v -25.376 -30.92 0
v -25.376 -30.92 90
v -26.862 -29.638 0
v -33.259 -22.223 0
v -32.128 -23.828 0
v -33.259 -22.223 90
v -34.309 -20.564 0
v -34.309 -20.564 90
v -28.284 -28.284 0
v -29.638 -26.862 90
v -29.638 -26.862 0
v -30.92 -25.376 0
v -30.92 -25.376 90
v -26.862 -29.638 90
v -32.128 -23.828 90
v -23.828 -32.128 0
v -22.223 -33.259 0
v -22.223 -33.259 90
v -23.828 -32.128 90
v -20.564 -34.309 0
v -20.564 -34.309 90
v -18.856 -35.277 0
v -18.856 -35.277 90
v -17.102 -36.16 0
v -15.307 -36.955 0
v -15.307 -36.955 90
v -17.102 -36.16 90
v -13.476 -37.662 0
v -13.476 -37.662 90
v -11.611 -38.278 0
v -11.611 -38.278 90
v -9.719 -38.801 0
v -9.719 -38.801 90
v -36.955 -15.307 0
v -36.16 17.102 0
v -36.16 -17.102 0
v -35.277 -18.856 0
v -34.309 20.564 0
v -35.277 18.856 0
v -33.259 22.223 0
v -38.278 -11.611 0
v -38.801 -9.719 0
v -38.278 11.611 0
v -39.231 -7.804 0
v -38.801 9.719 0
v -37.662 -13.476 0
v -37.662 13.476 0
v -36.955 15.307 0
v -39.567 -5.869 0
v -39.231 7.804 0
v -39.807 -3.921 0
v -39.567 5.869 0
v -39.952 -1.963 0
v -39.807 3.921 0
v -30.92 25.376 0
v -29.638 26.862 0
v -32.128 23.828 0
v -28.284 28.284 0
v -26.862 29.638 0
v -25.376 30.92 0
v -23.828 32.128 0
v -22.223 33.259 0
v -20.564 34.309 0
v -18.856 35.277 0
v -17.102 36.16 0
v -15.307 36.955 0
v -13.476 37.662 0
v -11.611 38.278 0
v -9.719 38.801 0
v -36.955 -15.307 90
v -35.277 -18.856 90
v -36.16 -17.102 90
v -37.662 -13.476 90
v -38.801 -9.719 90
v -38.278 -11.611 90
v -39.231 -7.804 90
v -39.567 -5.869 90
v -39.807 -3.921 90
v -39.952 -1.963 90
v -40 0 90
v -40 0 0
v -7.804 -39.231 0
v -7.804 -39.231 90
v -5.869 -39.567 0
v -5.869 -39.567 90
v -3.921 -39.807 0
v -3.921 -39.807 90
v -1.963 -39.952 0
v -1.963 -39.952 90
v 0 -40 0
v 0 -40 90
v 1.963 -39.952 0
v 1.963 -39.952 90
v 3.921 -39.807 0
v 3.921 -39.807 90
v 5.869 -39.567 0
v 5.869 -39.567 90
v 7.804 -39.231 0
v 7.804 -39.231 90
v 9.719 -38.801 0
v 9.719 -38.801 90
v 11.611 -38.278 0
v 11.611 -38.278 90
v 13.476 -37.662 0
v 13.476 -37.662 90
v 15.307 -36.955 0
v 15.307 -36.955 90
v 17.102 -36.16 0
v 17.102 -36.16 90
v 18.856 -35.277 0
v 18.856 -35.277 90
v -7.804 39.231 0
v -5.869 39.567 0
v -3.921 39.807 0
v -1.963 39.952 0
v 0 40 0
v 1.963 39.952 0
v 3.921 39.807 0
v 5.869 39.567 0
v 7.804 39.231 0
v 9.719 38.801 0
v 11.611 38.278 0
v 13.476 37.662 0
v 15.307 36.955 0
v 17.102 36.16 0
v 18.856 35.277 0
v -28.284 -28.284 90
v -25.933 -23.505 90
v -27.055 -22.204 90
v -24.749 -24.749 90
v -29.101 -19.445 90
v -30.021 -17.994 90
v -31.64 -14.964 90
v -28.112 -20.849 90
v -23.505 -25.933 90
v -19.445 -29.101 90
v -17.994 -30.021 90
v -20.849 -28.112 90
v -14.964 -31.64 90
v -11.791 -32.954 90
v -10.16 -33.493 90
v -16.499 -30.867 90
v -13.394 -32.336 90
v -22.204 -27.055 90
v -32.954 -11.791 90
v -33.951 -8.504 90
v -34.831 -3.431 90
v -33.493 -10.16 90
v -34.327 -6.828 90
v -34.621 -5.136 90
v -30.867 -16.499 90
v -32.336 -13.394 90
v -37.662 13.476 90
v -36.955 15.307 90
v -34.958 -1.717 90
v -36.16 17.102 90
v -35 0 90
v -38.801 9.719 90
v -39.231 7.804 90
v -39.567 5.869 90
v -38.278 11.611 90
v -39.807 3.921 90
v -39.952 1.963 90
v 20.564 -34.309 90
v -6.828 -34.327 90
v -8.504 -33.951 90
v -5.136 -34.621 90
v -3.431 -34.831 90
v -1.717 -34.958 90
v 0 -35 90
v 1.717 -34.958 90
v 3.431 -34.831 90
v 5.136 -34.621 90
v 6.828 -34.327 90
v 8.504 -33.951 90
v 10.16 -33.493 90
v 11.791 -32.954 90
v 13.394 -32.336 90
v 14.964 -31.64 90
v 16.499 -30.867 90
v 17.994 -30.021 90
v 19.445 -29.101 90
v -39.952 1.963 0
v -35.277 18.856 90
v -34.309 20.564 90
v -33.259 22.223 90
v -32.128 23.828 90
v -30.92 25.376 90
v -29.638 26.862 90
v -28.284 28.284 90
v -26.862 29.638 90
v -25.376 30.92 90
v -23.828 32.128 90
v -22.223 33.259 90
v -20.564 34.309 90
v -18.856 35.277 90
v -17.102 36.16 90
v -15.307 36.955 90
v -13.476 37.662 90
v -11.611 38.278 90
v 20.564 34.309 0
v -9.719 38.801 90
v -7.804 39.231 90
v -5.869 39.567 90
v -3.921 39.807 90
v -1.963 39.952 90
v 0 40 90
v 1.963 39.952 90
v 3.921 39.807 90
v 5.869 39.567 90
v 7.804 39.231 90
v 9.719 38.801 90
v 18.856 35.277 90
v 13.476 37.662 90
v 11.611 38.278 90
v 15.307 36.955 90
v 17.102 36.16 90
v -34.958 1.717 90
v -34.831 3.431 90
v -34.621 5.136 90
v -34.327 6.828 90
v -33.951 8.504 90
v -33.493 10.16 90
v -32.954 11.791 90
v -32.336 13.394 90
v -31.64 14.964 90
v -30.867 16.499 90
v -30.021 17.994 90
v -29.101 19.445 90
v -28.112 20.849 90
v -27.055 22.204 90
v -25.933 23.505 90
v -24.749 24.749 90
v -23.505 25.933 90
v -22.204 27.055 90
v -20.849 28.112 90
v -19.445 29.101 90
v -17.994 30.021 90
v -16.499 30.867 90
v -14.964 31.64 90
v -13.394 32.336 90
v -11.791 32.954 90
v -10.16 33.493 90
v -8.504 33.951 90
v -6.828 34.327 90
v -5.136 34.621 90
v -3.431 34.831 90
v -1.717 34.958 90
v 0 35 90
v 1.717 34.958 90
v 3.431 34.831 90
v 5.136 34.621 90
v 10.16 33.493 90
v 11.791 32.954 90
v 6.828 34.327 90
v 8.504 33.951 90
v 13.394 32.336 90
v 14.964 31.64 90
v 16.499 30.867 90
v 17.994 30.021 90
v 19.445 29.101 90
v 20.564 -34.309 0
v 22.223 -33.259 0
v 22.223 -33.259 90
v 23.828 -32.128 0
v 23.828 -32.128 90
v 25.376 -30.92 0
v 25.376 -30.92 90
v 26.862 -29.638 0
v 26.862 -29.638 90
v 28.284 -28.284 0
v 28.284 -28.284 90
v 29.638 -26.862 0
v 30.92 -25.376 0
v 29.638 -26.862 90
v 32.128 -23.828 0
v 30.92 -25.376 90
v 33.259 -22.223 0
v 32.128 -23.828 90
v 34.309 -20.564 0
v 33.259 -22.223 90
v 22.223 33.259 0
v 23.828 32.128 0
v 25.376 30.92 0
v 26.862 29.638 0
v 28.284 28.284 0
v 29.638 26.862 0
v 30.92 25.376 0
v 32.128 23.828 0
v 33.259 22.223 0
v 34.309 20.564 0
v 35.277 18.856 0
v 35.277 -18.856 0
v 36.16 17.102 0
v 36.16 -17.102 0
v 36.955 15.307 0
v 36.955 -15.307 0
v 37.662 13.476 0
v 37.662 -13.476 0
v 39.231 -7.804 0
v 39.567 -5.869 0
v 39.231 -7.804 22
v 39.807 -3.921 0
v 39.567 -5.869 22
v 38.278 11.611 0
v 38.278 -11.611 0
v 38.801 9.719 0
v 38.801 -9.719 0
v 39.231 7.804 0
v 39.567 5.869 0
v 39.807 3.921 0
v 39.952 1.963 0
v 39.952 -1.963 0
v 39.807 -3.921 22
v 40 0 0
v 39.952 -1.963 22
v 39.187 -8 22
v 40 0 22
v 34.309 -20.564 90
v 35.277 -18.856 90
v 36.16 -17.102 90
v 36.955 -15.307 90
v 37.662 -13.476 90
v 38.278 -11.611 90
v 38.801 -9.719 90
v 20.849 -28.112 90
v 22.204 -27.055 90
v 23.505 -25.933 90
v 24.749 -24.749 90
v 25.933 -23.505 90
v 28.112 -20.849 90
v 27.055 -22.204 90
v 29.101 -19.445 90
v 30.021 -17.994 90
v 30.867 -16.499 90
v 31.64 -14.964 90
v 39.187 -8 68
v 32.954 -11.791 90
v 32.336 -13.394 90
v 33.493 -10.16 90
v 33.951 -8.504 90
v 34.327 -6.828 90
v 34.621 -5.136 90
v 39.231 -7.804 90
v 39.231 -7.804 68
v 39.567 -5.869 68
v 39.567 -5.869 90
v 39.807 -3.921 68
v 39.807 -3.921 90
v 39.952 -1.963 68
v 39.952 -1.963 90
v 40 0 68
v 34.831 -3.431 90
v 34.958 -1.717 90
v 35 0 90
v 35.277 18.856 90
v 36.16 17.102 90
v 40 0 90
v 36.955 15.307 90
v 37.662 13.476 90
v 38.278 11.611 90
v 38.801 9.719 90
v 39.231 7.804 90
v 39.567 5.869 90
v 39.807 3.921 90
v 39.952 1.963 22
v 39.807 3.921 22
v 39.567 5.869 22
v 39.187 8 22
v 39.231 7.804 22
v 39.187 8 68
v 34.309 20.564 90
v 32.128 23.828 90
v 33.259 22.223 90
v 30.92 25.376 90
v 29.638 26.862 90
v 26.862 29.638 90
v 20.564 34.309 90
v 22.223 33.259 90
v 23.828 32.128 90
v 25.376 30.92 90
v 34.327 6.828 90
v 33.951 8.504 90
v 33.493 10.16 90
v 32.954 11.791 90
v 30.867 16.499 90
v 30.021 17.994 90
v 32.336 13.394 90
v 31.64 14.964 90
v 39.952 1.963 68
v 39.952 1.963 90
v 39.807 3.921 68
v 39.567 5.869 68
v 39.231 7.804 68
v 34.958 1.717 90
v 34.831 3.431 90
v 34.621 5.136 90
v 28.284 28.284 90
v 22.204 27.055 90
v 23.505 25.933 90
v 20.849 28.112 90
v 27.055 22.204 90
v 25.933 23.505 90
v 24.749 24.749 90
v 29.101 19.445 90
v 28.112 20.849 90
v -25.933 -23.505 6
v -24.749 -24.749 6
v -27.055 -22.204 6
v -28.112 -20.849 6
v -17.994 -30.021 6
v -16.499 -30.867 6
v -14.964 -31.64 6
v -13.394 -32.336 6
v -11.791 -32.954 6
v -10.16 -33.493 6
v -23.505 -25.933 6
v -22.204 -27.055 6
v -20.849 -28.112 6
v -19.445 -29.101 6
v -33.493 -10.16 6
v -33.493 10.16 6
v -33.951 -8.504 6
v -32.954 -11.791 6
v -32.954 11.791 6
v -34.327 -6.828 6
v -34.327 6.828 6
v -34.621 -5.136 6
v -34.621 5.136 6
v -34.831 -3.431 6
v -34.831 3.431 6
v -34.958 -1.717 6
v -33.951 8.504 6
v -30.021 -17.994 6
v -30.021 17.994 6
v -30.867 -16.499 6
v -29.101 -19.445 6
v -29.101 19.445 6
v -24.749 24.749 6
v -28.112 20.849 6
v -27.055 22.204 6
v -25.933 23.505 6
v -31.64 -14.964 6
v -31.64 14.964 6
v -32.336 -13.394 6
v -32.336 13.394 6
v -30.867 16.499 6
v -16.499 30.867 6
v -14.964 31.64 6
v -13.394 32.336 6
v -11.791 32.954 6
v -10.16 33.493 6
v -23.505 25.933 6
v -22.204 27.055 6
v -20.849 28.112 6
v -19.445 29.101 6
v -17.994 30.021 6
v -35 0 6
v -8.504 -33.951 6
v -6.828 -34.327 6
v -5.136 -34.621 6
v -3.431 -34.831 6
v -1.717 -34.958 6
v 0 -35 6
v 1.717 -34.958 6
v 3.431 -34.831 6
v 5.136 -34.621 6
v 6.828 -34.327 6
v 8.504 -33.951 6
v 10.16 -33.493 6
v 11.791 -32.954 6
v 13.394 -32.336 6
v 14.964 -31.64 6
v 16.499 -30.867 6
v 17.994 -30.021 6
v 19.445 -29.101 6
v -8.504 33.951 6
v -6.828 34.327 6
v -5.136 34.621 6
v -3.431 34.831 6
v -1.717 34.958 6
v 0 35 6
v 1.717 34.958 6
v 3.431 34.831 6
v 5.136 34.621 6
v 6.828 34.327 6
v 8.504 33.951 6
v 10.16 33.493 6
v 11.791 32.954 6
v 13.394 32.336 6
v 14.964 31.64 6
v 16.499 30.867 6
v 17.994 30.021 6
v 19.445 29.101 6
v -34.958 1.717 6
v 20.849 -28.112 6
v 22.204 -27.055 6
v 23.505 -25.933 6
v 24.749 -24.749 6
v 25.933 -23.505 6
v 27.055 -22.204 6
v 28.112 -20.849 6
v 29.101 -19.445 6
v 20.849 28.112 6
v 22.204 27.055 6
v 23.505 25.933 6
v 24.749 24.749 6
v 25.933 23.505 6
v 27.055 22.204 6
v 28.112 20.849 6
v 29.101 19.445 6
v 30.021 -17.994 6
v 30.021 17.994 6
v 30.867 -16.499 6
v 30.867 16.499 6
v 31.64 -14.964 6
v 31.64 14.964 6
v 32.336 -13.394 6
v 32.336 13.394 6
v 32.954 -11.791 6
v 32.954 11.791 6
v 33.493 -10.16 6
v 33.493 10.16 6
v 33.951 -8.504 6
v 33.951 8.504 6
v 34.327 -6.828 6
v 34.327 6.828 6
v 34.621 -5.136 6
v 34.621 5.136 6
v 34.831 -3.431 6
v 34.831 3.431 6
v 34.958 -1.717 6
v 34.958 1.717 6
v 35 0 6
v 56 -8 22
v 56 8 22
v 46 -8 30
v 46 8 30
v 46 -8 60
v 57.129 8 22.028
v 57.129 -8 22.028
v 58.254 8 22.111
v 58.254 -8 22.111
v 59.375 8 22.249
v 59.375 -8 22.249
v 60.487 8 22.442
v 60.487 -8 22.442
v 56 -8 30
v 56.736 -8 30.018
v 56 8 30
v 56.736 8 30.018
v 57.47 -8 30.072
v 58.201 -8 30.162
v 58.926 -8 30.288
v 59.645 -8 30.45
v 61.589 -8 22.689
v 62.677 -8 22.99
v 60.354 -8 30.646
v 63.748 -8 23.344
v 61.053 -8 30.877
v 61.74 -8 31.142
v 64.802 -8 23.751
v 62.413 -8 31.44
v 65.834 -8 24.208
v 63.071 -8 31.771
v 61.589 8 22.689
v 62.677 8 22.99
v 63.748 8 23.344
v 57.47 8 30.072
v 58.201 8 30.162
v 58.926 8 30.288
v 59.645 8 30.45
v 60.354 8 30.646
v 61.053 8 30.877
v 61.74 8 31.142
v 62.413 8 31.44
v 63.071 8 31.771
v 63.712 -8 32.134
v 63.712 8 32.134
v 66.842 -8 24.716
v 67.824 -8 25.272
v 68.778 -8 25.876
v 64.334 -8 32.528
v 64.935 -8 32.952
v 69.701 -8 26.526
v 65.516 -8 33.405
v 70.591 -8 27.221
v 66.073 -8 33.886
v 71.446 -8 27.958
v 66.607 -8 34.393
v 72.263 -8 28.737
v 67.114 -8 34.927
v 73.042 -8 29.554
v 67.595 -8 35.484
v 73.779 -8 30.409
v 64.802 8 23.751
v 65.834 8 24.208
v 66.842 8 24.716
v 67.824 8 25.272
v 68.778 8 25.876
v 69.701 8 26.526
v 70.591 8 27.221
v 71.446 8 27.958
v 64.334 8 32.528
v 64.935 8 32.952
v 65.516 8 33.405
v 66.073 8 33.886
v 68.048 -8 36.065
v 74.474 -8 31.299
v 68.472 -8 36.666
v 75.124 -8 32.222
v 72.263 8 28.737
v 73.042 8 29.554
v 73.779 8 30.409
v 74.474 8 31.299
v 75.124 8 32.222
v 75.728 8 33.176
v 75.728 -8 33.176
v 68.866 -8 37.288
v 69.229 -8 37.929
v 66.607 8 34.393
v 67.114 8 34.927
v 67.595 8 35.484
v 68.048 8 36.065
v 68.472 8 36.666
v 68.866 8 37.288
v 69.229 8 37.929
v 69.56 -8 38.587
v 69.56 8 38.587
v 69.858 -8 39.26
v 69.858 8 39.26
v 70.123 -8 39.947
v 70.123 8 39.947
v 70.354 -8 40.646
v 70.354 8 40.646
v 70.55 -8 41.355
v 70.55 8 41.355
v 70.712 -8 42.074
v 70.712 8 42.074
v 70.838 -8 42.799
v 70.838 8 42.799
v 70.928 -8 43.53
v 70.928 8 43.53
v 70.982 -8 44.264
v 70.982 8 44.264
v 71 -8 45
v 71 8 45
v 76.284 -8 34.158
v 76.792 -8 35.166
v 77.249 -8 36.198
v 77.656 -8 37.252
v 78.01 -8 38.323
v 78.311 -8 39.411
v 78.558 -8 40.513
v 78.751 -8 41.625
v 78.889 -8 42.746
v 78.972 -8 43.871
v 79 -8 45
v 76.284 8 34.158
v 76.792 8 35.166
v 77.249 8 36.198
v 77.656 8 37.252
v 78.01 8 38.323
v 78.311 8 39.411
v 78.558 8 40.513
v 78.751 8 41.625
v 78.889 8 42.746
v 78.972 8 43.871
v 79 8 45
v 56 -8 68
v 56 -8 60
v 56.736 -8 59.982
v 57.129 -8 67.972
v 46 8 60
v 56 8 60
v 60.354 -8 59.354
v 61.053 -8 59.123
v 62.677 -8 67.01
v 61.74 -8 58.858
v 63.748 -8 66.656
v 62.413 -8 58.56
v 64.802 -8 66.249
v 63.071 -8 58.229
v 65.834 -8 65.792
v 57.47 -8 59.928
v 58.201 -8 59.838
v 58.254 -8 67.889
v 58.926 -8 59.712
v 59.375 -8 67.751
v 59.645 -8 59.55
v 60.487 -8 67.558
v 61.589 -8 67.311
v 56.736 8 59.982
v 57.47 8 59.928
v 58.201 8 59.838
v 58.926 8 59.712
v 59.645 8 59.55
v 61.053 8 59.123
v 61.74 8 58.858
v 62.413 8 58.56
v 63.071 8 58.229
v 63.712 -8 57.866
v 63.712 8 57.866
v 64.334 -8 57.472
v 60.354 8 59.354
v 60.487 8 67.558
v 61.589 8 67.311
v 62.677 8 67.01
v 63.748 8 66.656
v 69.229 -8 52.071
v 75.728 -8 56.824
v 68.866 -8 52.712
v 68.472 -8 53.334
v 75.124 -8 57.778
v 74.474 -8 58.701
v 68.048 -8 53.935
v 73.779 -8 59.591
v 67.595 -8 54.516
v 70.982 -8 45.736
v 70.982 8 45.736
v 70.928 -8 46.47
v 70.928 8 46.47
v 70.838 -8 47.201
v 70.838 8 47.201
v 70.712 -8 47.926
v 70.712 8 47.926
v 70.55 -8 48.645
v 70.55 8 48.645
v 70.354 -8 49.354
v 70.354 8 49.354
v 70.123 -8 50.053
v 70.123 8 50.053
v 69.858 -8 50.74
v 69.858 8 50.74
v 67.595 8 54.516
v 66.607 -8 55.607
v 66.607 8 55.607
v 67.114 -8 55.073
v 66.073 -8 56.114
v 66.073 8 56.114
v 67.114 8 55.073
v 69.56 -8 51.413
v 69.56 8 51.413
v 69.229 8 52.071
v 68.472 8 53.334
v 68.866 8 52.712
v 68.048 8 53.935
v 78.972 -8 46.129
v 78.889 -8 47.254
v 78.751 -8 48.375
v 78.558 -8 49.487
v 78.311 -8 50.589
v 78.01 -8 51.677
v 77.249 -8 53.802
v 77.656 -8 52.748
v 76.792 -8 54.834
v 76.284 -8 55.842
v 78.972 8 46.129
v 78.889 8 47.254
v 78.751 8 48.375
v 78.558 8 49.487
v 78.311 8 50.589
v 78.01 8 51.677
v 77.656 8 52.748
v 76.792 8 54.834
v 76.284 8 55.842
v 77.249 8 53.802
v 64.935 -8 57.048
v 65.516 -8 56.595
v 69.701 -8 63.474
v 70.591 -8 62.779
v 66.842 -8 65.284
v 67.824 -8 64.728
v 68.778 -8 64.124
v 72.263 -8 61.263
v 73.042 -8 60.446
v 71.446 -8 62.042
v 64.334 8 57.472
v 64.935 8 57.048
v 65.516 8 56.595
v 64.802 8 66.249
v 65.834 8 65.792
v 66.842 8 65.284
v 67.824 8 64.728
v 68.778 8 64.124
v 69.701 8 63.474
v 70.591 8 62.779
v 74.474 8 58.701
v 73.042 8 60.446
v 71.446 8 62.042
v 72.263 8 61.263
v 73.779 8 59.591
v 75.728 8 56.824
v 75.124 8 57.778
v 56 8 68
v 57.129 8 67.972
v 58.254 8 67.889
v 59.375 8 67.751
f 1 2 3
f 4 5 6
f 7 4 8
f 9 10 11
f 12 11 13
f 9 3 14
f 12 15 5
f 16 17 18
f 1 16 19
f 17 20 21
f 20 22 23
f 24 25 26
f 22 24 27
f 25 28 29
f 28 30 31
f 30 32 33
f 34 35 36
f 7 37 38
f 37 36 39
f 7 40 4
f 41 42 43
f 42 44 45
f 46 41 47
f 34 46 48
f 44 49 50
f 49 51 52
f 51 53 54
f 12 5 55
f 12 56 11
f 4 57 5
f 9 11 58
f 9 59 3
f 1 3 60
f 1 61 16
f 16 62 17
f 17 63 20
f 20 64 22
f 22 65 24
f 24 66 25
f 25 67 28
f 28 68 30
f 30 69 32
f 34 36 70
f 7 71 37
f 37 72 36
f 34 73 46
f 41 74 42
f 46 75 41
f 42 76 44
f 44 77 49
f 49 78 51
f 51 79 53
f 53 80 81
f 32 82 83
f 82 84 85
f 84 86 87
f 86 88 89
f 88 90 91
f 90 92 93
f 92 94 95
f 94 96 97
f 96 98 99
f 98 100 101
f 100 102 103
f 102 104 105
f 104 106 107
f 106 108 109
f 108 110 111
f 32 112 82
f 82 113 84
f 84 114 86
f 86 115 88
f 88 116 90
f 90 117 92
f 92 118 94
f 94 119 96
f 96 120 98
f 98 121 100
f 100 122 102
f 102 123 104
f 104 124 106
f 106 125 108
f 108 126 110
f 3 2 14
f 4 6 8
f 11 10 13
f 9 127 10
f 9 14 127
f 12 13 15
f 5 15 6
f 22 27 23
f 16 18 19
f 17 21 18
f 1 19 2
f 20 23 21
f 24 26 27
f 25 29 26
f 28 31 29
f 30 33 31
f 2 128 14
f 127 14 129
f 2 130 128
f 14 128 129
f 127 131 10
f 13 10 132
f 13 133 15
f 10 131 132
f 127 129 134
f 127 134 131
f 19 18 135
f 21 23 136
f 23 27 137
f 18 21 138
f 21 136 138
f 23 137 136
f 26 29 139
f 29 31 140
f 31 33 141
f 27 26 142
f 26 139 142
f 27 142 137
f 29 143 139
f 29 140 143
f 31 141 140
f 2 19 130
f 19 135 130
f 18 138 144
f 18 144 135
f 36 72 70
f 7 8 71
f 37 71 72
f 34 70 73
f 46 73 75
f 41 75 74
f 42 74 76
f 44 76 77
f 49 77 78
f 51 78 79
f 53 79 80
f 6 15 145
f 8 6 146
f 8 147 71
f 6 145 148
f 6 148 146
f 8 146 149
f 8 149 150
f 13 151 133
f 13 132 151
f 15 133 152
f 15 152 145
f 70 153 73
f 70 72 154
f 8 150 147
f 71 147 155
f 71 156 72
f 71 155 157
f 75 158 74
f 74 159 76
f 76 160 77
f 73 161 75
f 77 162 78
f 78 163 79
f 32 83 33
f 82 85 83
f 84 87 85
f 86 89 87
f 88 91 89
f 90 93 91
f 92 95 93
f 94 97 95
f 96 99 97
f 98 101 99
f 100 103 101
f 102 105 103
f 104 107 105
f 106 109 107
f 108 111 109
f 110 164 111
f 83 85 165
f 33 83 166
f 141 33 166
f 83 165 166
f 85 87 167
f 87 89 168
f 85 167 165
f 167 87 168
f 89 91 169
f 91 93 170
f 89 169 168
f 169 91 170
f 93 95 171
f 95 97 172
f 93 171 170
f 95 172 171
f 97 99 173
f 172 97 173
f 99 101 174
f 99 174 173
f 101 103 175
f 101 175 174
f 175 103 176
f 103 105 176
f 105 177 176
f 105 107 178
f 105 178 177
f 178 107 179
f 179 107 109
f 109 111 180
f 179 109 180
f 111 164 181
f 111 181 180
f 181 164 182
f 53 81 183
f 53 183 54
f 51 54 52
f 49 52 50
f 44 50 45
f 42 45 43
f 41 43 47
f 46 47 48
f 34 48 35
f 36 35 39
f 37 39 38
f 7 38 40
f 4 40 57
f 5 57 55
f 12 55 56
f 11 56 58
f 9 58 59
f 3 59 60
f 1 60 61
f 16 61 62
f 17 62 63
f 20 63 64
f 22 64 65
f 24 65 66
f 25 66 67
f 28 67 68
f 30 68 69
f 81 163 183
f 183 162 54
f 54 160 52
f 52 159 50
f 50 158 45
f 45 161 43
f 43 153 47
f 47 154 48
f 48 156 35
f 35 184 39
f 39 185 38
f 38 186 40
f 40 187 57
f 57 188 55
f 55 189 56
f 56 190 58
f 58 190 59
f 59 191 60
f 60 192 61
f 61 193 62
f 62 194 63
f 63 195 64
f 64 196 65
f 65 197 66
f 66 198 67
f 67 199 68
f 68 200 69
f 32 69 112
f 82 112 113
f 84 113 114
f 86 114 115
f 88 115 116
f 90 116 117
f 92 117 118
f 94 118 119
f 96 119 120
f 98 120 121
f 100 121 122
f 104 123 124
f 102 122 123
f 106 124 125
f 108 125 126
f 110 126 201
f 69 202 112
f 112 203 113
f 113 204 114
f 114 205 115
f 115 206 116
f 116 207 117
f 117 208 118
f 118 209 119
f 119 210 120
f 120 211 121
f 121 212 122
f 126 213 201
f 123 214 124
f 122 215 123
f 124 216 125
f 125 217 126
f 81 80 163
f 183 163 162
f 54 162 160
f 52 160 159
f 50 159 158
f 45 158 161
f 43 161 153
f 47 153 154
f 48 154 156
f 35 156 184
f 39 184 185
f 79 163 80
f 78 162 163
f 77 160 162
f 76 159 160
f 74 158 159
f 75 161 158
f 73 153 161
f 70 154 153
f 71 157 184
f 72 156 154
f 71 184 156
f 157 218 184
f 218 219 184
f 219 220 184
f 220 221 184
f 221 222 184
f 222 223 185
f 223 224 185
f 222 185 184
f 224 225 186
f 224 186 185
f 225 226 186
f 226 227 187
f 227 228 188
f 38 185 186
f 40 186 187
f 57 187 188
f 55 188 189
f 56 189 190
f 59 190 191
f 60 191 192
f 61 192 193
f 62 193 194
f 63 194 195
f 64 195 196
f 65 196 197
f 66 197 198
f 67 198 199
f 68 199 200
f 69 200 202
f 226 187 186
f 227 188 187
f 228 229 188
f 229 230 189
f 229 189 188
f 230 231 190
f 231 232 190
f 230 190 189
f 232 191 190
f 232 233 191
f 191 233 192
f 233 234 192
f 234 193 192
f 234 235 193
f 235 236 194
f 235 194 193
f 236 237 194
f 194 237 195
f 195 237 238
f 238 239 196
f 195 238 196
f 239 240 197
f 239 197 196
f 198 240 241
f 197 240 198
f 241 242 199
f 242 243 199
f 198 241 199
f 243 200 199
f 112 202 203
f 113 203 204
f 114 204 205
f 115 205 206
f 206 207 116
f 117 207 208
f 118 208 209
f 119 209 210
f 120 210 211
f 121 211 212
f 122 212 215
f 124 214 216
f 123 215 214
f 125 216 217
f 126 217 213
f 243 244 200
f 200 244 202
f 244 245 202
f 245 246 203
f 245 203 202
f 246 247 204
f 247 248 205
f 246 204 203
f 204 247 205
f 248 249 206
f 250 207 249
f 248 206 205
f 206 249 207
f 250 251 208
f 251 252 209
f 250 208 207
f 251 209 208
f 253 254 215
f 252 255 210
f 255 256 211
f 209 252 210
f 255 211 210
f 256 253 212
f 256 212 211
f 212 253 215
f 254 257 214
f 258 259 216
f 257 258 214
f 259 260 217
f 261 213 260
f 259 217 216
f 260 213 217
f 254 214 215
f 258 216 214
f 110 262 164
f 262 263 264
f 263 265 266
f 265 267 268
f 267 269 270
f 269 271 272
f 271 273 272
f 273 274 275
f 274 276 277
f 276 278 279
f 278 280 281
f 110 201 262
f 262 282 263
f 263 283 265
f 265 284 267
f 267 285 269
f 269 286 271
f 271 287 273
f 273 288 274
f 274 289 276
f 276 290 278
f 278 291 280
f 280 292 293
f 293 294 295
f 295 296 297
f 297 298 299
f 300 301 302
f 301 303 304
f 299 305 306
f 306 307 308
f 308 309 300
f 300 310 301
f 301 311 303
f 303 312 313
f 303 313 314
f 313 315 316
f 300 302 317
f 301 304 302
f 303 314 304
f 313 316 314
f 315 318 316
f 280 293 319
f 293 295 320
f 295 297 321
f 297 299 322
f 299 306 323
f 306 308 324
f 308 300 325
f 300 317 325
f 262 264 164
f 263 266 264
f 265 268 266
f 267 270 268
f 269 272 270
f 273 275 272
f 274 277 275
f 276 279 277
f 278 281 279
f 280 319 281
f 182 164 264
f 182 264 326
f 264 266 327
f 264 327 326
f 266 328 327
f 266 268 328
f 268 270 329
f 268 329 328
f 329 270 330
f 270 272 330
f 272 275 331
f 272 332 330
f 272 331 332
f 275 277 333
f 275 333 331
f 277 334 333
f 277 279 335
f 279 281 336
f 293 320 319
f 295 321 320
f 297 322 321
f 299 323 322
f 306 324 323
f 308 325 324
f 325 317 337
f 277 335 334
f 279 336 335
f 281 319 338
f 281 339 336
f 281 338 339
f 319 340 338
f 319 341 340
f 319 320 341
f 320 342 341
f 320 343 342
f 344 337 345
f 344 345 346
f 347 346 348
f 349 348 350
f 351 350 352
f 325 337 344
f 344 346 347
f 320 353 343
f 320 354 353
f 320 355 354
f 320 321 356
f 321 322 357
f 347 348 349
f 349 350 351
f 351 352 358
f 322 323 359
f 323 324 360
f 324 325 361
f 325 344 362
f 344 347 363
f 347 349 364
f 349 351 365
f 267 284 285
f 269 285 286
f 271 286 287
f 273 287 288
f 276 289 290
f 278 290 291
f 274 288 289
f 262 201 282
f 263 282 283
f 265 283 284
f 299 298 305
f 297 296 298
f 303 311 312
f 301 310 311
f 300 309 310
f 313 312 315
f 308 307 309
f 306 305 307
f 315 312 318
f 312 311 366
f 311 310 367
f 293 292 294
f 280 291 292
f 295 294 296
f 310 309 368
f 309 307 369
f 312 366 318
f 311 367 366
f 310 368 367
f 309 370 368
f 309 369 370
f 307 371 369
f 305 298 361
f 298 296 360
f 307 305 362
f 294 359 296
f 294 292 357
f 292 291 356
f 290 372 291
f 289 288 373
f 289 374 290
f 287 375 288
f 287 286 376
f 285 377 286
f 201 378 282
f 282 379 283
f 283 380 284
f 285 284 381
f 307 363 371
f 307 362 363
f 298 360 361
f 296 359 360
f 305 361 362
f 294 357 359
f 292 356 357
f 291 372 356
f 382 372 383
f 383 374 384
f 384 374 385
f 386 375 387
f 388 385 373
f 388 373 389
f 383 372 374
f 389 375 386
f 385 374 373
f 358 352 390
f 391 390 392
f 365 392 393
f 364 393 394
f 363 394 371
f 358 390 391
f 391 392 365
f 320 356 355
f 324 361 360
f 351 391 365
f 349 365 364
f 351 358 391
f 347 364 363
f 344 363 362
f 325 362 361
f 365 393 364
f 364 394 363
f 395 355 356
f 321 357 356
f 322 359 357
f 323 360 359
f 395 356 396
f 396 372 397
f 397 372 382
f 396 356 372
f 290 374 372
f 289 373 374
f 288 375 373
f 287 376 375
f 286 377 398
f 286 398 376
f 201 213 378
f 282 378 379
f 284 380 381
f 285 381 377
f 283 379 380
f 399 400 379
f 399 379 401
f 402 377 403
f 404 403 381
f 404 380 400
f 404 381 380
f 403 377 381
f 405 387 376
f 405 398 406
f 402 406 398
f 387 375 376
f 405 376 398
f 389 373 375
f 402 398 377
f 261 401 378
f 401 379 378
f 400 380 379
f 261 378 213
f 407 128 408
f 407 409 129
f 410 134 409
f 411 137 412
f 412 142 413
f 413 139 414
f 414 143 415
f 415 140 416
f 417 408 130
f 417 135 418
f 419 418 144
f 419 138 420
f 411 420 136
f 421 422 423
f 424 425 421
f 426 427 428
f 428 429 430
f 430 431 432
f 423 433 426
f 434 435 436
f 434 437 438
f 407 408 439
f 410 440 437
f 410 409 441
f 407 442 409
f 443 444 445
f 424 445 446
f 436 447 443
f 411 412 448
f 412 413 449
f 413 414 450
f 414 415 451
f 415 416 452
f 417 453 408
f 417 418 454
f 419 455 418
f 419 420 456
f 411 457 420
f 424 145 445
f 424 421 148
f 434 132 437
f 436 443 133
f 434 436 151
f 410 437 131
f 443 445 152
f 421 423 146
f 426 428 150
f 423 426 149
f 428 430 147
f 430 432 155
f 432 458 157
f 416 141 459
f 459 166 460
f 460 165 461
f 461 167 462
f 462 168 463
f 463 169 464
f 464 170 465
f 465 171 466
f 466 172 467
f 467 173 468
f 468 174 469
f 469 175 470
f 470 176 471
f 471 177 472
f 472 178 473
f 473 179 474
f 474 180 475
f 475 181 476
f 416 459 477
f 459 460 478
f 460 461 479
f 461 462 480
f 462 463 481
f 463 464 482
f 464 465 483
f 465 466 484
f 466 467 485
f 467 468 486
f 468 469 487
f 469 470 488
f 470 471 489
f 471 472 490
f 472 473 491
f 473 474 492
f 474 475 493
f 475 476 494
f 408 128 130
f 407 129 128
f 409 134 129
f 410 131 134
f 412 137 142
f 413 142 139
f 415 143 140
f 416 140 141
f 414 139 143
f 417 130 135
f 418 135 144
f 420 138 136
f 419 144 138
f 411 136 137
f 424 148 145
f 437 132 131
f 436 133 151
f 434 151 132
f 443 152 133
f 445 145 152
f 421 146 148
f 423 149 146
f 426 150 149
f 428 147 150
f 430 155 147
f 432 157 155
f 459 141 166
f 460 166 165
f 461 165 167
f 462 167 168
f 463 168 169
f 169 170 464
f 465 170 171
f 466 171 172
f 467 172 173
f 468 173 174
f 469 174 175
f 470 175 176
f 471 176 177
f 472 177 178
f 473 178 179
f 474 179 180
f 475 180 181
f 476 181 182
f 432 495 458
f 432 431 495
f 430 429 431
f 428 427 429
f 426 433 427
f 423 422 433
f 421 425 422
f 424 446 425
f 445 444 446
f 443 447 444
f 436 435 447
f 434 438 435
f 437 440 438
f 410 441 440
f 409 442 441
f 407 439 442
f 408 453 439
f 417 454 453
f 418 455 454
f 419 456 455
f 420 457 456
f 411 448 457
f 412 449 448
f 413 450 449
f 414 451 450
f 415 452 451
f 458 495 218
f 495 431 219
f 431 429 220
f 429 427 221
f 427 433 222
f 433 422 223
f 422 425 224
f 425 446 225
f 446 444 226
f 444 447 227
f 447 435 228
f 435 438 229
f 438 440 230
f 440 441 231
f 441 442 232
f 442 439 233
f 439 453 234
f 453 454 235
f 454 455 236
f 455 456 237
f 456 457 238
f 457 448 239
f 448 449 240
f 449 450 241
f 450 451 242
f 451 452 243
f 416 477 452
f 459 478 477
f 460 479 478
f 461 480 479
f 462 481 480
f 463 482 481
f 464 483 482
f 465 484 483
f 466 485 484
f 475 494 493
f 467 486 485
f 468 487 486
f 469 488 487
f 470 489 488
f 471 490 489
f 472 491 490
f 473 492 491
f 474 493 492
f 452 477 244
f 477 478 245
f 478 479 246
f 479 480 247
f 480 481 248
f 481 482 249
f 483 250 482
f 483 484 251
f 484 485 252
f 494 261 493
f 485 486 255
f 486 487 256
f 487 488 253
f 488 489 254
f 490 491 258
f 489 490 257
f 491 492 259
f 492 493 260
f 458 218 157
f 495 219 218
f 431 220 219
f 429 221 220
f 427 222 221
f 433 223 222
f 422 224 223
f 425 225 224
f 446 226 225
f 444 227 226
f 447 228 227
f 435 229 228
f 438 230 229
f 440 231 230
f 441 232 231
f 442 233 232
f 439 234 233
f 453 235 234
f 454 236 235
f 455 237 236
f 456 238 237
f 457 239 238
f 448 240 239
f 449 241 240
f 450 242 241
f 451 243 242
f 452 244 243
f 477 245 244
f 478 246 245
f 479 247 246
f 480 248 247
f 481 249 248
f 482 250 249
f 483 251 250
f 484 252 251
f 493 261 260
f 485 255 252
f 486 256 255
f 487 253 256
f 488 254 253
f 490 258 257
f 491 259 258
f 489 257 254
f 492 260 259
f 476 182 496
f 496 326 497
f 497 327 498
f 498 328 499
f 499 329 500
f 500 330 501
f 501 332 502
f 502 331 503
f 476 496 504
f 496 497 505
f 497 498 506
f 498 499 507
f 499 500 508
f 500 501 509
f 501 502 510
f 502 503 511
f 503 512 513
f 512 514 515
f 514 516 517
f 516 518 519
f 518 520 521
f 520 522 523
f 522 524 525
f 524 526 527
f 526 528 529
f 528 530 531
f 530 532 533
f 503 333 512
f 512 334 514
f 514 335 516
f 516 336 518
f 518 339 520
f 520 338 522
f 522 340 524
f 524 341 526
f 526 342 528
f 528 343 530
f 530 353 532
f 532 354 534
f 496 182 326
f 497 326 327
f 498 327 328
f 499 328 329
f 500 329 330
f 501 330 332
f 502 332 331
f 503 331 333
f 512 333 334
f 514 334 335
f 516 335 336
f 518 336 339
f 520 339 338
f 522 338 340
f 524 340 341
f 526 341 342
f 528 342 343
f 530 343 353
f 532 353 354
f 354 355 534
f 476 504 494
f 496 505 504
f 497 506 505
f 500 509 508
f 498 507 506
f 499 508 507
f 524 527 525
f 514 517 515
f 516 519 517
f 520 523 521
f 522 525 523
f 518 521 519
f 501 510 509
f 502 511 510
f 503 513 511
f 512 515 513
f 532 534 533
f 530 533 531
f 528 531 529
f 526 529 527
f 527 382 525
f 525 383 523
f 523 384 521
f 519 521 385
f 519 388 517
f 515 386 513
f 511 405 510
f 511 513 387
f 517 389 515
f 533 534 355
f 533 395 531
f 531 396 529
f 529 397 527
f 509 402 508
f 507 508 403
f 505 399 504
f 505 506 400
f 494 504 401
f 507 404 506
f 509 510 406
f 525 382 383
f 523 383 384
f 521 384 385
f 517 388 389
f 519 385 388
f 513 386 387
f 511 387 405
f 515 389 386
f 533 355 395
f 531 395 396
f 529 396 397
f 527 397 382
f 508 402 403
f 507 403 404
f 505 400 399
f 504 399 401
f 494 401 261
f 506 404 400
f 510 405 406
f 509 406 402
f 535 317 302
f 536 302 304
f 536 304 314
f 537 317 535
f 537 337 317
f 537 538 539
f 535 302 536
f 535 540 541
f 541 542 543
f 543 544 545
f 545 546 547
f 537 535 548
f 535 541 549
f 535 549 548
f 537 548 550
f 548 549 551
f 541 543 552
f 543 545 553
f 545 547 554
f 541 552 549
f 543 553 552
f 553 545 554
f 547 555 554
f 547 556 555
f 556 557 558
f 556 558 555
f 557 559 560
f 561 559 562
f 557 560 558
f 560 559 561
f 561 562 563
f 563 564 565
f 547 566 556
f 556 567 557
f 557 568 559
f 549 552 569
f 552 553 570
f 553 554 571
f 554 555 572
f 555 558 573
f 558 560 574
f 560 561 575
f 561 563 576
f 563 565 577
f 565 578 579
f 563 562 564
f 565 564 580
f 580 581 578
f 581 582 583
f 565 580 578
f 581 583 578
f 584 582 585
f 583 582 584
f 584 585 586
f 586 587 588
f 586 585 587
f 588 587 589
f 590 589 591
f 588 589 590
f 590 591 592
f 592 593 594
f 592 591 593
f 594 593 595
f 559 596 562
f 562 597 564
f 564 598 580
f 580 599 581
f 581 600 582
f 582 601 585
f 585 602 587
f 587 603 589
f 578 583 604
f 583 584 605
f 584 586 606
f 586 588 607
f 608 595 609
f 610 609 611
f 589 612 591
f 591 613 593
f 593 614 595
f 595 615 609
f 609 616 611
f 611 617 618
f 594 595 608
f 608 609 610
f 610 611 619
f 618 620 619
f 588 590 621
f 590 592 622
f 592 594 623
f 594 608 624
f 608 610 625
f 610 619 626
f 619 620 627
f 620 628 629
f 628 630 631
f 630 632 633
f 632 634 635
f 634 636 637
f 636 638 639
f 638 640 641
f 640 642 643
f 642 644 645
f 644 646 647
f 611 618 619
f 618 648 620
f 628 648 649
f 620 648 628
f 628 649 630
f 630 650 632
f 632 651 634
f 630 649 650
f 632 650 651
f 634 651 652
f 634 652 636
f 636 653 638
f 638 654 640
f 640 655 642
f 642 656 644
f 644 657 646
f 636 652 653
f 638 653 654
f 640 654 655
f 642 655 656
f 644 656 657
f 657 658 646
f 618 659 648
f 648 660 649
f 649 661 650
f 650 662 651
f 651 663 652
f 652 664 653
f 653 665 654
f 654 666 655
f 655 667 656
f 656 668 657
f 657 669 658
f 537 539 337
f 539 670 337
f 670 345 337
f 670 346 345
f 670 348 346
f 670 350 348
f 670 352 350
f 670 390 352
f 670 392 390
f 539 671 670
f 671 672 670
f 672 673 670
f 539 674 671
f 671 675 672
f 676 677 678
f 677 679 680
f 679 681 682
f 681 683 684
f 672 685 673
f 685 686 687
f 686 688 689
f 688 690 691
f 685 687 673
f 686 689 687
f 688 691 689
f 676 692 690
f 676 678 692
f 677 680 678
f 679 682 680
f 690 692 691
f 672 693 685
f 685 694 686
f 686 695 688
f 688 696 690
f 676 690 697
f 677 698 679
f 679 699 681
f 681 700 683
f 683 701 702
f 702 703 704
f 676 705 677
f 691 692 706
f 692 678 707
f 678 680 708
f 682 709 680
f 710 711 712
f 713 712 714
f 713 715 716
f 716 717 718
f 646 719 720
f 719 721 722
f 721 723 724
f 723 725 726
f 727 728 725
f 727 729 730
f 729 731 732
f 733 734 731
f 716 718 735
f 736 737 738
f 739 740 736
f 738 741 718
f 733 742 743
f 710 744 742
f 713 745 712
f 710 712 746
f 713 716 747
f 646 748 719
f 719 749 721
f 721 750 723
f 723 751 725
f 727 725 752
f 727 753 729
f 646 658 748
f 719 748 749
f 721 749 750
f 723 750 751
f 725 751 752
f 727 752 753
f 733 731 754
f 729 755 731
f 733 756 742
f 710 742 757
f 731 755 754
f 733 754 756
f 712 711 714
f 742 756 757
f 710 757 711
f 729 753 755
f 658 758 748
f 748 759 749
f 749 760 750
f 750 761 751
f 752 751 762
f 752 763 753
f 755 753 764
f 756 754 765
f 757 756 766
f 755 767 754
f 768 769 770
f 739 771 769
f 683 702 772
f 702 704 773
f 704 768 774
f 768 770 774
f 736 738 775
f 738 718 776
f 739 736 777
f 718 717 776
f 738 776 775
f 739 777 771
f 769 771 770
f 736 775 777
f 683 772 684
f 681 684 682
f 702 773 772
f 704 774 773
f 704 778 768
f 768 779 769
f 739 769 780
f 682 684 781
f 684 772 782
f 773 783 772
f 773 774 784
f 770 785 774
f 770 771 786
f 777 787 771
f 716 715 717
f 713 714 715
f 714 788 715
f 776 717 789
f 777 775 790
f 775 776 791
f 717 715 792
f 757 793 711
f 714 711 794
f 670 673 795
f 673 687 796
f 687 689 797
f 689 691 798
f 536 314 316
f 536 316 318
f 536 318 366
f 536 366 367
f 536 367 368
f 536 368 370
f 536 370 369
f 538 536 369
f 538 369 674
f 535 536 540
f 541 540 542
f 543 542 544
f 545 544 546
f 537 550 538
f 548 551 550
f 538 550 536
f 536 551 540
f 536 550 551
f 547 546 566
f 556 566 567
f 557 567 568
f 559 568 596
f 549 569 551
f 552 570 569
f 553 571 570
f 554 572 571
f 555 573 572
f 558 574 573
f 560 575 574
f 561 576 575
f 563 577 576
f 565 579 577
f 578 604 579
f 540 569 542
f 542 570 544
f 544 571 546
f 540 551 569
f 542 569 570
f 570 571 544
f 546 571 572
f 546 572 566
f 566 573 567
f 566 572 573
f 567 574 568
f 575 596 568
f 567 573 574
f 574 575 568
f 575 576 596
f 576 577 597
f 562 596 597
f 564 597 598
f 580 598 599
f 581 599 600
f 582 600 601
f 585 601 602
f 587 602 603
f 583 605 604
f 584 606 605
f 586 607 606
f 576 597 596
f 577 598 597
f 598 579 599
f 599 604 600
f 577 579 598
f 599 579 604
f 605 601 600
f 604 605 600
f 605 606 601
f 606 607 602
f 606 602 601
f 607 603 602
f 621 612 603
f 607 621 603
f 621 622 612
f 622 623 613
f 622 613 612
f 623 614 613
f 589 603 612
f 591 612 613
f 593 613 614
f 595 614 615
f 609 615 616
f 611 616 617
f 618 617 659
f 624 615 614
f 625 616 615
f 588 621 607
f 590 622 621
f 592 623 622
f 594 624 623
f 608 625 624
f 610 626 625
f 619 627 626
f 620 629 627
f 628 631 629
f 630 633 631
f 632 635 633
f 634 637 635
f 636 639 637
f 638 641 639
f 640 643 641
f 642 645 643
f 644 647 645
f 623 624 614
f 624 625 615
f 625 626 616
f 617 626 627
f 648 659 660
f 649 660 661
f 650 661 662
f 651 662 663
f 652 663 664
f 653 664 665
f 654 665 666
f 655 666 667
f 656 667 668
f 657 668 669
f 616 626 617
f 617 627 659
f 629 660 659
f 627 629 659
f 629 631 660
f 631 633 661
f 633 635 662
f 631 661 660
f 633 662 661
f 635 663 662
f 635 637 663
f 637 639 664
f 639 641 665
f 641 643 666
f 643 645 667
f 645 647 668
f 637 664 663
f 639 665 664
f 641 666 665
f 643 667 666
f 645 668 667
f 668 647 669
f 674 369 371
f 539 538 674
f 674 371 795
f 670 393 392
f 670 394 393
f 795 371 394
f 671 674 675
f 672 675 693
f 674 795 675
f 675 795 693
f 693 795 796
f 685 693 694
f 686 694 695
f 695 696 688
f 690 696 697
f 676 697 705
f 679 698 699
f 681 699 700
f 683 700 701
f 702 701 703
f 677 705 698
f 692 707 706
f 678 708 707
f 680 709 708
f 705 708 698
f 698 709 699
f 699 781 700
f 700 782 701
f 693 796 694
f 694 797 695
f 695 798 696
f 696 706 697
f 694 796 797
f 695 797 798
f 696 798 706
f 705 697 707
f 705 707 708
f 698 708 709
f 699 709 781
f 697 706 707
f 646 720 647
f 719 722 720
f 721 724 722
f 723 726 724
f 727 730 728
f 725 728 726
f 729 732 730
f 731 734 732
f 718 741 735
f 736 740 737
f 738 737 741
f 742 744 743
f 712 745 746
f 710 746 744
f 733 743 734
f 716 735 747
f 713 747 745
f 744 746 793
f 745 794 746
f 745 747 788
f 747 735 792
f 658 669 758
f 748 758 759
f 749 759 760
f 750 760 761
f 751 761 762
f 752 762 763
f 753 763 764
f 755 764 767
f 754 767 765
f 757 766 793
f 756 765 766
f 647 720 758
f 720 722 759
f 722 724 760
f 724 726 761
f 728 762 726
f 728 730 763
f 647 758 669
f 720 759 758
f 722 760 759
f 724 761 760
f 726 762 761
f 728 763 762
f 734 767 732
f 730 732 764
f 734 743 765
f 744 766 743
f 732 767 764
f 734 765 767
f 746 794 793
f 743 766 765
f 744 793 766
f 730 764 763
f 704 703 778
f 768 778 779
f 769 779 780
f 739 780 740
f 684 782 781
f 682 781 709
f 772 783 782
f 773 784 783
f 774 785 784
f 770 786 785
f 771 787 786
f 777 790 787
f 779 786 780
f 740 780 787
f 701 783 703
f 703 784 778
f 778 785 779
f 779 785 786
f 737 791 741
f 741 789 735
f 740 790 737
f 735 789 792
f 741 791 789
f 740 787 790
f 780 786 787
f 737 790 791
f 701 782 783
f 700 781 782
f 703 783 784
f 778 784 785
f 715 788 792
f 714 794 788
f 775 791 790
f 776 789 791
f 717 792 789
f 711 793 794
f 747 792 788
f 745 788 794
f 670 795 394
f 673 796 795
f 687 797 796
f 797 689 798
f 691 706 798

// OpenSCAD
$fn = 128;

mug_outer_d = 80;
mug_inner_d = 70;
mug_height  = 90;
bottom_th   = 6;

outer_r = mug_outer_d / 2;
inner_r = mug_inner_d / 2;

handle_inner_h = 30;
handle_inner_w = 25;
handle_th      = 8;
handle_depth   = 16;
handle_z       = mug_height / 2;
handle_attach_x = outer_r - 2;

handle_outer_h = handle_inner_h + handle_th * 2;
handle_outer_w = handle_inner_w + handle_th * 2;

function d_shape_points(w, h, n = 64) =
    let(r = h / 2, cx = w - r)
    concat(
        [[0, -r]],
        [for (i = [0:n])
            let(a = -90 + 180 * i / n)
            [cx + r * cos(a), r * sin(a)]
        ],
        [[0, r]]
    );

module d_shape_2d(w, h) {
    polygon(points = d_shape_points(w, h));
}

module mug_body() {
    difference() {
        cylinder(h = mug_height, r = outer_r);
        translate([0, 0, bottom_th])
            cylinder(h = mug_height, r = inner_r);
    }
}

module handle() {
    rotate([90, 0, 0])
        linear_extrude(height = handle_depth, center = true, convexity = 10)
            translate([handle_attach_x, handle_z])
                difference() {
                    d_shape_2d(handle_outer_w, handle_outer_h);
                    translate([handle_th, 0])
                        d_shape_2d(handle_inner_w, handle_inner_h);
                }
}

union() {
    mug_body();
    handle();
}
